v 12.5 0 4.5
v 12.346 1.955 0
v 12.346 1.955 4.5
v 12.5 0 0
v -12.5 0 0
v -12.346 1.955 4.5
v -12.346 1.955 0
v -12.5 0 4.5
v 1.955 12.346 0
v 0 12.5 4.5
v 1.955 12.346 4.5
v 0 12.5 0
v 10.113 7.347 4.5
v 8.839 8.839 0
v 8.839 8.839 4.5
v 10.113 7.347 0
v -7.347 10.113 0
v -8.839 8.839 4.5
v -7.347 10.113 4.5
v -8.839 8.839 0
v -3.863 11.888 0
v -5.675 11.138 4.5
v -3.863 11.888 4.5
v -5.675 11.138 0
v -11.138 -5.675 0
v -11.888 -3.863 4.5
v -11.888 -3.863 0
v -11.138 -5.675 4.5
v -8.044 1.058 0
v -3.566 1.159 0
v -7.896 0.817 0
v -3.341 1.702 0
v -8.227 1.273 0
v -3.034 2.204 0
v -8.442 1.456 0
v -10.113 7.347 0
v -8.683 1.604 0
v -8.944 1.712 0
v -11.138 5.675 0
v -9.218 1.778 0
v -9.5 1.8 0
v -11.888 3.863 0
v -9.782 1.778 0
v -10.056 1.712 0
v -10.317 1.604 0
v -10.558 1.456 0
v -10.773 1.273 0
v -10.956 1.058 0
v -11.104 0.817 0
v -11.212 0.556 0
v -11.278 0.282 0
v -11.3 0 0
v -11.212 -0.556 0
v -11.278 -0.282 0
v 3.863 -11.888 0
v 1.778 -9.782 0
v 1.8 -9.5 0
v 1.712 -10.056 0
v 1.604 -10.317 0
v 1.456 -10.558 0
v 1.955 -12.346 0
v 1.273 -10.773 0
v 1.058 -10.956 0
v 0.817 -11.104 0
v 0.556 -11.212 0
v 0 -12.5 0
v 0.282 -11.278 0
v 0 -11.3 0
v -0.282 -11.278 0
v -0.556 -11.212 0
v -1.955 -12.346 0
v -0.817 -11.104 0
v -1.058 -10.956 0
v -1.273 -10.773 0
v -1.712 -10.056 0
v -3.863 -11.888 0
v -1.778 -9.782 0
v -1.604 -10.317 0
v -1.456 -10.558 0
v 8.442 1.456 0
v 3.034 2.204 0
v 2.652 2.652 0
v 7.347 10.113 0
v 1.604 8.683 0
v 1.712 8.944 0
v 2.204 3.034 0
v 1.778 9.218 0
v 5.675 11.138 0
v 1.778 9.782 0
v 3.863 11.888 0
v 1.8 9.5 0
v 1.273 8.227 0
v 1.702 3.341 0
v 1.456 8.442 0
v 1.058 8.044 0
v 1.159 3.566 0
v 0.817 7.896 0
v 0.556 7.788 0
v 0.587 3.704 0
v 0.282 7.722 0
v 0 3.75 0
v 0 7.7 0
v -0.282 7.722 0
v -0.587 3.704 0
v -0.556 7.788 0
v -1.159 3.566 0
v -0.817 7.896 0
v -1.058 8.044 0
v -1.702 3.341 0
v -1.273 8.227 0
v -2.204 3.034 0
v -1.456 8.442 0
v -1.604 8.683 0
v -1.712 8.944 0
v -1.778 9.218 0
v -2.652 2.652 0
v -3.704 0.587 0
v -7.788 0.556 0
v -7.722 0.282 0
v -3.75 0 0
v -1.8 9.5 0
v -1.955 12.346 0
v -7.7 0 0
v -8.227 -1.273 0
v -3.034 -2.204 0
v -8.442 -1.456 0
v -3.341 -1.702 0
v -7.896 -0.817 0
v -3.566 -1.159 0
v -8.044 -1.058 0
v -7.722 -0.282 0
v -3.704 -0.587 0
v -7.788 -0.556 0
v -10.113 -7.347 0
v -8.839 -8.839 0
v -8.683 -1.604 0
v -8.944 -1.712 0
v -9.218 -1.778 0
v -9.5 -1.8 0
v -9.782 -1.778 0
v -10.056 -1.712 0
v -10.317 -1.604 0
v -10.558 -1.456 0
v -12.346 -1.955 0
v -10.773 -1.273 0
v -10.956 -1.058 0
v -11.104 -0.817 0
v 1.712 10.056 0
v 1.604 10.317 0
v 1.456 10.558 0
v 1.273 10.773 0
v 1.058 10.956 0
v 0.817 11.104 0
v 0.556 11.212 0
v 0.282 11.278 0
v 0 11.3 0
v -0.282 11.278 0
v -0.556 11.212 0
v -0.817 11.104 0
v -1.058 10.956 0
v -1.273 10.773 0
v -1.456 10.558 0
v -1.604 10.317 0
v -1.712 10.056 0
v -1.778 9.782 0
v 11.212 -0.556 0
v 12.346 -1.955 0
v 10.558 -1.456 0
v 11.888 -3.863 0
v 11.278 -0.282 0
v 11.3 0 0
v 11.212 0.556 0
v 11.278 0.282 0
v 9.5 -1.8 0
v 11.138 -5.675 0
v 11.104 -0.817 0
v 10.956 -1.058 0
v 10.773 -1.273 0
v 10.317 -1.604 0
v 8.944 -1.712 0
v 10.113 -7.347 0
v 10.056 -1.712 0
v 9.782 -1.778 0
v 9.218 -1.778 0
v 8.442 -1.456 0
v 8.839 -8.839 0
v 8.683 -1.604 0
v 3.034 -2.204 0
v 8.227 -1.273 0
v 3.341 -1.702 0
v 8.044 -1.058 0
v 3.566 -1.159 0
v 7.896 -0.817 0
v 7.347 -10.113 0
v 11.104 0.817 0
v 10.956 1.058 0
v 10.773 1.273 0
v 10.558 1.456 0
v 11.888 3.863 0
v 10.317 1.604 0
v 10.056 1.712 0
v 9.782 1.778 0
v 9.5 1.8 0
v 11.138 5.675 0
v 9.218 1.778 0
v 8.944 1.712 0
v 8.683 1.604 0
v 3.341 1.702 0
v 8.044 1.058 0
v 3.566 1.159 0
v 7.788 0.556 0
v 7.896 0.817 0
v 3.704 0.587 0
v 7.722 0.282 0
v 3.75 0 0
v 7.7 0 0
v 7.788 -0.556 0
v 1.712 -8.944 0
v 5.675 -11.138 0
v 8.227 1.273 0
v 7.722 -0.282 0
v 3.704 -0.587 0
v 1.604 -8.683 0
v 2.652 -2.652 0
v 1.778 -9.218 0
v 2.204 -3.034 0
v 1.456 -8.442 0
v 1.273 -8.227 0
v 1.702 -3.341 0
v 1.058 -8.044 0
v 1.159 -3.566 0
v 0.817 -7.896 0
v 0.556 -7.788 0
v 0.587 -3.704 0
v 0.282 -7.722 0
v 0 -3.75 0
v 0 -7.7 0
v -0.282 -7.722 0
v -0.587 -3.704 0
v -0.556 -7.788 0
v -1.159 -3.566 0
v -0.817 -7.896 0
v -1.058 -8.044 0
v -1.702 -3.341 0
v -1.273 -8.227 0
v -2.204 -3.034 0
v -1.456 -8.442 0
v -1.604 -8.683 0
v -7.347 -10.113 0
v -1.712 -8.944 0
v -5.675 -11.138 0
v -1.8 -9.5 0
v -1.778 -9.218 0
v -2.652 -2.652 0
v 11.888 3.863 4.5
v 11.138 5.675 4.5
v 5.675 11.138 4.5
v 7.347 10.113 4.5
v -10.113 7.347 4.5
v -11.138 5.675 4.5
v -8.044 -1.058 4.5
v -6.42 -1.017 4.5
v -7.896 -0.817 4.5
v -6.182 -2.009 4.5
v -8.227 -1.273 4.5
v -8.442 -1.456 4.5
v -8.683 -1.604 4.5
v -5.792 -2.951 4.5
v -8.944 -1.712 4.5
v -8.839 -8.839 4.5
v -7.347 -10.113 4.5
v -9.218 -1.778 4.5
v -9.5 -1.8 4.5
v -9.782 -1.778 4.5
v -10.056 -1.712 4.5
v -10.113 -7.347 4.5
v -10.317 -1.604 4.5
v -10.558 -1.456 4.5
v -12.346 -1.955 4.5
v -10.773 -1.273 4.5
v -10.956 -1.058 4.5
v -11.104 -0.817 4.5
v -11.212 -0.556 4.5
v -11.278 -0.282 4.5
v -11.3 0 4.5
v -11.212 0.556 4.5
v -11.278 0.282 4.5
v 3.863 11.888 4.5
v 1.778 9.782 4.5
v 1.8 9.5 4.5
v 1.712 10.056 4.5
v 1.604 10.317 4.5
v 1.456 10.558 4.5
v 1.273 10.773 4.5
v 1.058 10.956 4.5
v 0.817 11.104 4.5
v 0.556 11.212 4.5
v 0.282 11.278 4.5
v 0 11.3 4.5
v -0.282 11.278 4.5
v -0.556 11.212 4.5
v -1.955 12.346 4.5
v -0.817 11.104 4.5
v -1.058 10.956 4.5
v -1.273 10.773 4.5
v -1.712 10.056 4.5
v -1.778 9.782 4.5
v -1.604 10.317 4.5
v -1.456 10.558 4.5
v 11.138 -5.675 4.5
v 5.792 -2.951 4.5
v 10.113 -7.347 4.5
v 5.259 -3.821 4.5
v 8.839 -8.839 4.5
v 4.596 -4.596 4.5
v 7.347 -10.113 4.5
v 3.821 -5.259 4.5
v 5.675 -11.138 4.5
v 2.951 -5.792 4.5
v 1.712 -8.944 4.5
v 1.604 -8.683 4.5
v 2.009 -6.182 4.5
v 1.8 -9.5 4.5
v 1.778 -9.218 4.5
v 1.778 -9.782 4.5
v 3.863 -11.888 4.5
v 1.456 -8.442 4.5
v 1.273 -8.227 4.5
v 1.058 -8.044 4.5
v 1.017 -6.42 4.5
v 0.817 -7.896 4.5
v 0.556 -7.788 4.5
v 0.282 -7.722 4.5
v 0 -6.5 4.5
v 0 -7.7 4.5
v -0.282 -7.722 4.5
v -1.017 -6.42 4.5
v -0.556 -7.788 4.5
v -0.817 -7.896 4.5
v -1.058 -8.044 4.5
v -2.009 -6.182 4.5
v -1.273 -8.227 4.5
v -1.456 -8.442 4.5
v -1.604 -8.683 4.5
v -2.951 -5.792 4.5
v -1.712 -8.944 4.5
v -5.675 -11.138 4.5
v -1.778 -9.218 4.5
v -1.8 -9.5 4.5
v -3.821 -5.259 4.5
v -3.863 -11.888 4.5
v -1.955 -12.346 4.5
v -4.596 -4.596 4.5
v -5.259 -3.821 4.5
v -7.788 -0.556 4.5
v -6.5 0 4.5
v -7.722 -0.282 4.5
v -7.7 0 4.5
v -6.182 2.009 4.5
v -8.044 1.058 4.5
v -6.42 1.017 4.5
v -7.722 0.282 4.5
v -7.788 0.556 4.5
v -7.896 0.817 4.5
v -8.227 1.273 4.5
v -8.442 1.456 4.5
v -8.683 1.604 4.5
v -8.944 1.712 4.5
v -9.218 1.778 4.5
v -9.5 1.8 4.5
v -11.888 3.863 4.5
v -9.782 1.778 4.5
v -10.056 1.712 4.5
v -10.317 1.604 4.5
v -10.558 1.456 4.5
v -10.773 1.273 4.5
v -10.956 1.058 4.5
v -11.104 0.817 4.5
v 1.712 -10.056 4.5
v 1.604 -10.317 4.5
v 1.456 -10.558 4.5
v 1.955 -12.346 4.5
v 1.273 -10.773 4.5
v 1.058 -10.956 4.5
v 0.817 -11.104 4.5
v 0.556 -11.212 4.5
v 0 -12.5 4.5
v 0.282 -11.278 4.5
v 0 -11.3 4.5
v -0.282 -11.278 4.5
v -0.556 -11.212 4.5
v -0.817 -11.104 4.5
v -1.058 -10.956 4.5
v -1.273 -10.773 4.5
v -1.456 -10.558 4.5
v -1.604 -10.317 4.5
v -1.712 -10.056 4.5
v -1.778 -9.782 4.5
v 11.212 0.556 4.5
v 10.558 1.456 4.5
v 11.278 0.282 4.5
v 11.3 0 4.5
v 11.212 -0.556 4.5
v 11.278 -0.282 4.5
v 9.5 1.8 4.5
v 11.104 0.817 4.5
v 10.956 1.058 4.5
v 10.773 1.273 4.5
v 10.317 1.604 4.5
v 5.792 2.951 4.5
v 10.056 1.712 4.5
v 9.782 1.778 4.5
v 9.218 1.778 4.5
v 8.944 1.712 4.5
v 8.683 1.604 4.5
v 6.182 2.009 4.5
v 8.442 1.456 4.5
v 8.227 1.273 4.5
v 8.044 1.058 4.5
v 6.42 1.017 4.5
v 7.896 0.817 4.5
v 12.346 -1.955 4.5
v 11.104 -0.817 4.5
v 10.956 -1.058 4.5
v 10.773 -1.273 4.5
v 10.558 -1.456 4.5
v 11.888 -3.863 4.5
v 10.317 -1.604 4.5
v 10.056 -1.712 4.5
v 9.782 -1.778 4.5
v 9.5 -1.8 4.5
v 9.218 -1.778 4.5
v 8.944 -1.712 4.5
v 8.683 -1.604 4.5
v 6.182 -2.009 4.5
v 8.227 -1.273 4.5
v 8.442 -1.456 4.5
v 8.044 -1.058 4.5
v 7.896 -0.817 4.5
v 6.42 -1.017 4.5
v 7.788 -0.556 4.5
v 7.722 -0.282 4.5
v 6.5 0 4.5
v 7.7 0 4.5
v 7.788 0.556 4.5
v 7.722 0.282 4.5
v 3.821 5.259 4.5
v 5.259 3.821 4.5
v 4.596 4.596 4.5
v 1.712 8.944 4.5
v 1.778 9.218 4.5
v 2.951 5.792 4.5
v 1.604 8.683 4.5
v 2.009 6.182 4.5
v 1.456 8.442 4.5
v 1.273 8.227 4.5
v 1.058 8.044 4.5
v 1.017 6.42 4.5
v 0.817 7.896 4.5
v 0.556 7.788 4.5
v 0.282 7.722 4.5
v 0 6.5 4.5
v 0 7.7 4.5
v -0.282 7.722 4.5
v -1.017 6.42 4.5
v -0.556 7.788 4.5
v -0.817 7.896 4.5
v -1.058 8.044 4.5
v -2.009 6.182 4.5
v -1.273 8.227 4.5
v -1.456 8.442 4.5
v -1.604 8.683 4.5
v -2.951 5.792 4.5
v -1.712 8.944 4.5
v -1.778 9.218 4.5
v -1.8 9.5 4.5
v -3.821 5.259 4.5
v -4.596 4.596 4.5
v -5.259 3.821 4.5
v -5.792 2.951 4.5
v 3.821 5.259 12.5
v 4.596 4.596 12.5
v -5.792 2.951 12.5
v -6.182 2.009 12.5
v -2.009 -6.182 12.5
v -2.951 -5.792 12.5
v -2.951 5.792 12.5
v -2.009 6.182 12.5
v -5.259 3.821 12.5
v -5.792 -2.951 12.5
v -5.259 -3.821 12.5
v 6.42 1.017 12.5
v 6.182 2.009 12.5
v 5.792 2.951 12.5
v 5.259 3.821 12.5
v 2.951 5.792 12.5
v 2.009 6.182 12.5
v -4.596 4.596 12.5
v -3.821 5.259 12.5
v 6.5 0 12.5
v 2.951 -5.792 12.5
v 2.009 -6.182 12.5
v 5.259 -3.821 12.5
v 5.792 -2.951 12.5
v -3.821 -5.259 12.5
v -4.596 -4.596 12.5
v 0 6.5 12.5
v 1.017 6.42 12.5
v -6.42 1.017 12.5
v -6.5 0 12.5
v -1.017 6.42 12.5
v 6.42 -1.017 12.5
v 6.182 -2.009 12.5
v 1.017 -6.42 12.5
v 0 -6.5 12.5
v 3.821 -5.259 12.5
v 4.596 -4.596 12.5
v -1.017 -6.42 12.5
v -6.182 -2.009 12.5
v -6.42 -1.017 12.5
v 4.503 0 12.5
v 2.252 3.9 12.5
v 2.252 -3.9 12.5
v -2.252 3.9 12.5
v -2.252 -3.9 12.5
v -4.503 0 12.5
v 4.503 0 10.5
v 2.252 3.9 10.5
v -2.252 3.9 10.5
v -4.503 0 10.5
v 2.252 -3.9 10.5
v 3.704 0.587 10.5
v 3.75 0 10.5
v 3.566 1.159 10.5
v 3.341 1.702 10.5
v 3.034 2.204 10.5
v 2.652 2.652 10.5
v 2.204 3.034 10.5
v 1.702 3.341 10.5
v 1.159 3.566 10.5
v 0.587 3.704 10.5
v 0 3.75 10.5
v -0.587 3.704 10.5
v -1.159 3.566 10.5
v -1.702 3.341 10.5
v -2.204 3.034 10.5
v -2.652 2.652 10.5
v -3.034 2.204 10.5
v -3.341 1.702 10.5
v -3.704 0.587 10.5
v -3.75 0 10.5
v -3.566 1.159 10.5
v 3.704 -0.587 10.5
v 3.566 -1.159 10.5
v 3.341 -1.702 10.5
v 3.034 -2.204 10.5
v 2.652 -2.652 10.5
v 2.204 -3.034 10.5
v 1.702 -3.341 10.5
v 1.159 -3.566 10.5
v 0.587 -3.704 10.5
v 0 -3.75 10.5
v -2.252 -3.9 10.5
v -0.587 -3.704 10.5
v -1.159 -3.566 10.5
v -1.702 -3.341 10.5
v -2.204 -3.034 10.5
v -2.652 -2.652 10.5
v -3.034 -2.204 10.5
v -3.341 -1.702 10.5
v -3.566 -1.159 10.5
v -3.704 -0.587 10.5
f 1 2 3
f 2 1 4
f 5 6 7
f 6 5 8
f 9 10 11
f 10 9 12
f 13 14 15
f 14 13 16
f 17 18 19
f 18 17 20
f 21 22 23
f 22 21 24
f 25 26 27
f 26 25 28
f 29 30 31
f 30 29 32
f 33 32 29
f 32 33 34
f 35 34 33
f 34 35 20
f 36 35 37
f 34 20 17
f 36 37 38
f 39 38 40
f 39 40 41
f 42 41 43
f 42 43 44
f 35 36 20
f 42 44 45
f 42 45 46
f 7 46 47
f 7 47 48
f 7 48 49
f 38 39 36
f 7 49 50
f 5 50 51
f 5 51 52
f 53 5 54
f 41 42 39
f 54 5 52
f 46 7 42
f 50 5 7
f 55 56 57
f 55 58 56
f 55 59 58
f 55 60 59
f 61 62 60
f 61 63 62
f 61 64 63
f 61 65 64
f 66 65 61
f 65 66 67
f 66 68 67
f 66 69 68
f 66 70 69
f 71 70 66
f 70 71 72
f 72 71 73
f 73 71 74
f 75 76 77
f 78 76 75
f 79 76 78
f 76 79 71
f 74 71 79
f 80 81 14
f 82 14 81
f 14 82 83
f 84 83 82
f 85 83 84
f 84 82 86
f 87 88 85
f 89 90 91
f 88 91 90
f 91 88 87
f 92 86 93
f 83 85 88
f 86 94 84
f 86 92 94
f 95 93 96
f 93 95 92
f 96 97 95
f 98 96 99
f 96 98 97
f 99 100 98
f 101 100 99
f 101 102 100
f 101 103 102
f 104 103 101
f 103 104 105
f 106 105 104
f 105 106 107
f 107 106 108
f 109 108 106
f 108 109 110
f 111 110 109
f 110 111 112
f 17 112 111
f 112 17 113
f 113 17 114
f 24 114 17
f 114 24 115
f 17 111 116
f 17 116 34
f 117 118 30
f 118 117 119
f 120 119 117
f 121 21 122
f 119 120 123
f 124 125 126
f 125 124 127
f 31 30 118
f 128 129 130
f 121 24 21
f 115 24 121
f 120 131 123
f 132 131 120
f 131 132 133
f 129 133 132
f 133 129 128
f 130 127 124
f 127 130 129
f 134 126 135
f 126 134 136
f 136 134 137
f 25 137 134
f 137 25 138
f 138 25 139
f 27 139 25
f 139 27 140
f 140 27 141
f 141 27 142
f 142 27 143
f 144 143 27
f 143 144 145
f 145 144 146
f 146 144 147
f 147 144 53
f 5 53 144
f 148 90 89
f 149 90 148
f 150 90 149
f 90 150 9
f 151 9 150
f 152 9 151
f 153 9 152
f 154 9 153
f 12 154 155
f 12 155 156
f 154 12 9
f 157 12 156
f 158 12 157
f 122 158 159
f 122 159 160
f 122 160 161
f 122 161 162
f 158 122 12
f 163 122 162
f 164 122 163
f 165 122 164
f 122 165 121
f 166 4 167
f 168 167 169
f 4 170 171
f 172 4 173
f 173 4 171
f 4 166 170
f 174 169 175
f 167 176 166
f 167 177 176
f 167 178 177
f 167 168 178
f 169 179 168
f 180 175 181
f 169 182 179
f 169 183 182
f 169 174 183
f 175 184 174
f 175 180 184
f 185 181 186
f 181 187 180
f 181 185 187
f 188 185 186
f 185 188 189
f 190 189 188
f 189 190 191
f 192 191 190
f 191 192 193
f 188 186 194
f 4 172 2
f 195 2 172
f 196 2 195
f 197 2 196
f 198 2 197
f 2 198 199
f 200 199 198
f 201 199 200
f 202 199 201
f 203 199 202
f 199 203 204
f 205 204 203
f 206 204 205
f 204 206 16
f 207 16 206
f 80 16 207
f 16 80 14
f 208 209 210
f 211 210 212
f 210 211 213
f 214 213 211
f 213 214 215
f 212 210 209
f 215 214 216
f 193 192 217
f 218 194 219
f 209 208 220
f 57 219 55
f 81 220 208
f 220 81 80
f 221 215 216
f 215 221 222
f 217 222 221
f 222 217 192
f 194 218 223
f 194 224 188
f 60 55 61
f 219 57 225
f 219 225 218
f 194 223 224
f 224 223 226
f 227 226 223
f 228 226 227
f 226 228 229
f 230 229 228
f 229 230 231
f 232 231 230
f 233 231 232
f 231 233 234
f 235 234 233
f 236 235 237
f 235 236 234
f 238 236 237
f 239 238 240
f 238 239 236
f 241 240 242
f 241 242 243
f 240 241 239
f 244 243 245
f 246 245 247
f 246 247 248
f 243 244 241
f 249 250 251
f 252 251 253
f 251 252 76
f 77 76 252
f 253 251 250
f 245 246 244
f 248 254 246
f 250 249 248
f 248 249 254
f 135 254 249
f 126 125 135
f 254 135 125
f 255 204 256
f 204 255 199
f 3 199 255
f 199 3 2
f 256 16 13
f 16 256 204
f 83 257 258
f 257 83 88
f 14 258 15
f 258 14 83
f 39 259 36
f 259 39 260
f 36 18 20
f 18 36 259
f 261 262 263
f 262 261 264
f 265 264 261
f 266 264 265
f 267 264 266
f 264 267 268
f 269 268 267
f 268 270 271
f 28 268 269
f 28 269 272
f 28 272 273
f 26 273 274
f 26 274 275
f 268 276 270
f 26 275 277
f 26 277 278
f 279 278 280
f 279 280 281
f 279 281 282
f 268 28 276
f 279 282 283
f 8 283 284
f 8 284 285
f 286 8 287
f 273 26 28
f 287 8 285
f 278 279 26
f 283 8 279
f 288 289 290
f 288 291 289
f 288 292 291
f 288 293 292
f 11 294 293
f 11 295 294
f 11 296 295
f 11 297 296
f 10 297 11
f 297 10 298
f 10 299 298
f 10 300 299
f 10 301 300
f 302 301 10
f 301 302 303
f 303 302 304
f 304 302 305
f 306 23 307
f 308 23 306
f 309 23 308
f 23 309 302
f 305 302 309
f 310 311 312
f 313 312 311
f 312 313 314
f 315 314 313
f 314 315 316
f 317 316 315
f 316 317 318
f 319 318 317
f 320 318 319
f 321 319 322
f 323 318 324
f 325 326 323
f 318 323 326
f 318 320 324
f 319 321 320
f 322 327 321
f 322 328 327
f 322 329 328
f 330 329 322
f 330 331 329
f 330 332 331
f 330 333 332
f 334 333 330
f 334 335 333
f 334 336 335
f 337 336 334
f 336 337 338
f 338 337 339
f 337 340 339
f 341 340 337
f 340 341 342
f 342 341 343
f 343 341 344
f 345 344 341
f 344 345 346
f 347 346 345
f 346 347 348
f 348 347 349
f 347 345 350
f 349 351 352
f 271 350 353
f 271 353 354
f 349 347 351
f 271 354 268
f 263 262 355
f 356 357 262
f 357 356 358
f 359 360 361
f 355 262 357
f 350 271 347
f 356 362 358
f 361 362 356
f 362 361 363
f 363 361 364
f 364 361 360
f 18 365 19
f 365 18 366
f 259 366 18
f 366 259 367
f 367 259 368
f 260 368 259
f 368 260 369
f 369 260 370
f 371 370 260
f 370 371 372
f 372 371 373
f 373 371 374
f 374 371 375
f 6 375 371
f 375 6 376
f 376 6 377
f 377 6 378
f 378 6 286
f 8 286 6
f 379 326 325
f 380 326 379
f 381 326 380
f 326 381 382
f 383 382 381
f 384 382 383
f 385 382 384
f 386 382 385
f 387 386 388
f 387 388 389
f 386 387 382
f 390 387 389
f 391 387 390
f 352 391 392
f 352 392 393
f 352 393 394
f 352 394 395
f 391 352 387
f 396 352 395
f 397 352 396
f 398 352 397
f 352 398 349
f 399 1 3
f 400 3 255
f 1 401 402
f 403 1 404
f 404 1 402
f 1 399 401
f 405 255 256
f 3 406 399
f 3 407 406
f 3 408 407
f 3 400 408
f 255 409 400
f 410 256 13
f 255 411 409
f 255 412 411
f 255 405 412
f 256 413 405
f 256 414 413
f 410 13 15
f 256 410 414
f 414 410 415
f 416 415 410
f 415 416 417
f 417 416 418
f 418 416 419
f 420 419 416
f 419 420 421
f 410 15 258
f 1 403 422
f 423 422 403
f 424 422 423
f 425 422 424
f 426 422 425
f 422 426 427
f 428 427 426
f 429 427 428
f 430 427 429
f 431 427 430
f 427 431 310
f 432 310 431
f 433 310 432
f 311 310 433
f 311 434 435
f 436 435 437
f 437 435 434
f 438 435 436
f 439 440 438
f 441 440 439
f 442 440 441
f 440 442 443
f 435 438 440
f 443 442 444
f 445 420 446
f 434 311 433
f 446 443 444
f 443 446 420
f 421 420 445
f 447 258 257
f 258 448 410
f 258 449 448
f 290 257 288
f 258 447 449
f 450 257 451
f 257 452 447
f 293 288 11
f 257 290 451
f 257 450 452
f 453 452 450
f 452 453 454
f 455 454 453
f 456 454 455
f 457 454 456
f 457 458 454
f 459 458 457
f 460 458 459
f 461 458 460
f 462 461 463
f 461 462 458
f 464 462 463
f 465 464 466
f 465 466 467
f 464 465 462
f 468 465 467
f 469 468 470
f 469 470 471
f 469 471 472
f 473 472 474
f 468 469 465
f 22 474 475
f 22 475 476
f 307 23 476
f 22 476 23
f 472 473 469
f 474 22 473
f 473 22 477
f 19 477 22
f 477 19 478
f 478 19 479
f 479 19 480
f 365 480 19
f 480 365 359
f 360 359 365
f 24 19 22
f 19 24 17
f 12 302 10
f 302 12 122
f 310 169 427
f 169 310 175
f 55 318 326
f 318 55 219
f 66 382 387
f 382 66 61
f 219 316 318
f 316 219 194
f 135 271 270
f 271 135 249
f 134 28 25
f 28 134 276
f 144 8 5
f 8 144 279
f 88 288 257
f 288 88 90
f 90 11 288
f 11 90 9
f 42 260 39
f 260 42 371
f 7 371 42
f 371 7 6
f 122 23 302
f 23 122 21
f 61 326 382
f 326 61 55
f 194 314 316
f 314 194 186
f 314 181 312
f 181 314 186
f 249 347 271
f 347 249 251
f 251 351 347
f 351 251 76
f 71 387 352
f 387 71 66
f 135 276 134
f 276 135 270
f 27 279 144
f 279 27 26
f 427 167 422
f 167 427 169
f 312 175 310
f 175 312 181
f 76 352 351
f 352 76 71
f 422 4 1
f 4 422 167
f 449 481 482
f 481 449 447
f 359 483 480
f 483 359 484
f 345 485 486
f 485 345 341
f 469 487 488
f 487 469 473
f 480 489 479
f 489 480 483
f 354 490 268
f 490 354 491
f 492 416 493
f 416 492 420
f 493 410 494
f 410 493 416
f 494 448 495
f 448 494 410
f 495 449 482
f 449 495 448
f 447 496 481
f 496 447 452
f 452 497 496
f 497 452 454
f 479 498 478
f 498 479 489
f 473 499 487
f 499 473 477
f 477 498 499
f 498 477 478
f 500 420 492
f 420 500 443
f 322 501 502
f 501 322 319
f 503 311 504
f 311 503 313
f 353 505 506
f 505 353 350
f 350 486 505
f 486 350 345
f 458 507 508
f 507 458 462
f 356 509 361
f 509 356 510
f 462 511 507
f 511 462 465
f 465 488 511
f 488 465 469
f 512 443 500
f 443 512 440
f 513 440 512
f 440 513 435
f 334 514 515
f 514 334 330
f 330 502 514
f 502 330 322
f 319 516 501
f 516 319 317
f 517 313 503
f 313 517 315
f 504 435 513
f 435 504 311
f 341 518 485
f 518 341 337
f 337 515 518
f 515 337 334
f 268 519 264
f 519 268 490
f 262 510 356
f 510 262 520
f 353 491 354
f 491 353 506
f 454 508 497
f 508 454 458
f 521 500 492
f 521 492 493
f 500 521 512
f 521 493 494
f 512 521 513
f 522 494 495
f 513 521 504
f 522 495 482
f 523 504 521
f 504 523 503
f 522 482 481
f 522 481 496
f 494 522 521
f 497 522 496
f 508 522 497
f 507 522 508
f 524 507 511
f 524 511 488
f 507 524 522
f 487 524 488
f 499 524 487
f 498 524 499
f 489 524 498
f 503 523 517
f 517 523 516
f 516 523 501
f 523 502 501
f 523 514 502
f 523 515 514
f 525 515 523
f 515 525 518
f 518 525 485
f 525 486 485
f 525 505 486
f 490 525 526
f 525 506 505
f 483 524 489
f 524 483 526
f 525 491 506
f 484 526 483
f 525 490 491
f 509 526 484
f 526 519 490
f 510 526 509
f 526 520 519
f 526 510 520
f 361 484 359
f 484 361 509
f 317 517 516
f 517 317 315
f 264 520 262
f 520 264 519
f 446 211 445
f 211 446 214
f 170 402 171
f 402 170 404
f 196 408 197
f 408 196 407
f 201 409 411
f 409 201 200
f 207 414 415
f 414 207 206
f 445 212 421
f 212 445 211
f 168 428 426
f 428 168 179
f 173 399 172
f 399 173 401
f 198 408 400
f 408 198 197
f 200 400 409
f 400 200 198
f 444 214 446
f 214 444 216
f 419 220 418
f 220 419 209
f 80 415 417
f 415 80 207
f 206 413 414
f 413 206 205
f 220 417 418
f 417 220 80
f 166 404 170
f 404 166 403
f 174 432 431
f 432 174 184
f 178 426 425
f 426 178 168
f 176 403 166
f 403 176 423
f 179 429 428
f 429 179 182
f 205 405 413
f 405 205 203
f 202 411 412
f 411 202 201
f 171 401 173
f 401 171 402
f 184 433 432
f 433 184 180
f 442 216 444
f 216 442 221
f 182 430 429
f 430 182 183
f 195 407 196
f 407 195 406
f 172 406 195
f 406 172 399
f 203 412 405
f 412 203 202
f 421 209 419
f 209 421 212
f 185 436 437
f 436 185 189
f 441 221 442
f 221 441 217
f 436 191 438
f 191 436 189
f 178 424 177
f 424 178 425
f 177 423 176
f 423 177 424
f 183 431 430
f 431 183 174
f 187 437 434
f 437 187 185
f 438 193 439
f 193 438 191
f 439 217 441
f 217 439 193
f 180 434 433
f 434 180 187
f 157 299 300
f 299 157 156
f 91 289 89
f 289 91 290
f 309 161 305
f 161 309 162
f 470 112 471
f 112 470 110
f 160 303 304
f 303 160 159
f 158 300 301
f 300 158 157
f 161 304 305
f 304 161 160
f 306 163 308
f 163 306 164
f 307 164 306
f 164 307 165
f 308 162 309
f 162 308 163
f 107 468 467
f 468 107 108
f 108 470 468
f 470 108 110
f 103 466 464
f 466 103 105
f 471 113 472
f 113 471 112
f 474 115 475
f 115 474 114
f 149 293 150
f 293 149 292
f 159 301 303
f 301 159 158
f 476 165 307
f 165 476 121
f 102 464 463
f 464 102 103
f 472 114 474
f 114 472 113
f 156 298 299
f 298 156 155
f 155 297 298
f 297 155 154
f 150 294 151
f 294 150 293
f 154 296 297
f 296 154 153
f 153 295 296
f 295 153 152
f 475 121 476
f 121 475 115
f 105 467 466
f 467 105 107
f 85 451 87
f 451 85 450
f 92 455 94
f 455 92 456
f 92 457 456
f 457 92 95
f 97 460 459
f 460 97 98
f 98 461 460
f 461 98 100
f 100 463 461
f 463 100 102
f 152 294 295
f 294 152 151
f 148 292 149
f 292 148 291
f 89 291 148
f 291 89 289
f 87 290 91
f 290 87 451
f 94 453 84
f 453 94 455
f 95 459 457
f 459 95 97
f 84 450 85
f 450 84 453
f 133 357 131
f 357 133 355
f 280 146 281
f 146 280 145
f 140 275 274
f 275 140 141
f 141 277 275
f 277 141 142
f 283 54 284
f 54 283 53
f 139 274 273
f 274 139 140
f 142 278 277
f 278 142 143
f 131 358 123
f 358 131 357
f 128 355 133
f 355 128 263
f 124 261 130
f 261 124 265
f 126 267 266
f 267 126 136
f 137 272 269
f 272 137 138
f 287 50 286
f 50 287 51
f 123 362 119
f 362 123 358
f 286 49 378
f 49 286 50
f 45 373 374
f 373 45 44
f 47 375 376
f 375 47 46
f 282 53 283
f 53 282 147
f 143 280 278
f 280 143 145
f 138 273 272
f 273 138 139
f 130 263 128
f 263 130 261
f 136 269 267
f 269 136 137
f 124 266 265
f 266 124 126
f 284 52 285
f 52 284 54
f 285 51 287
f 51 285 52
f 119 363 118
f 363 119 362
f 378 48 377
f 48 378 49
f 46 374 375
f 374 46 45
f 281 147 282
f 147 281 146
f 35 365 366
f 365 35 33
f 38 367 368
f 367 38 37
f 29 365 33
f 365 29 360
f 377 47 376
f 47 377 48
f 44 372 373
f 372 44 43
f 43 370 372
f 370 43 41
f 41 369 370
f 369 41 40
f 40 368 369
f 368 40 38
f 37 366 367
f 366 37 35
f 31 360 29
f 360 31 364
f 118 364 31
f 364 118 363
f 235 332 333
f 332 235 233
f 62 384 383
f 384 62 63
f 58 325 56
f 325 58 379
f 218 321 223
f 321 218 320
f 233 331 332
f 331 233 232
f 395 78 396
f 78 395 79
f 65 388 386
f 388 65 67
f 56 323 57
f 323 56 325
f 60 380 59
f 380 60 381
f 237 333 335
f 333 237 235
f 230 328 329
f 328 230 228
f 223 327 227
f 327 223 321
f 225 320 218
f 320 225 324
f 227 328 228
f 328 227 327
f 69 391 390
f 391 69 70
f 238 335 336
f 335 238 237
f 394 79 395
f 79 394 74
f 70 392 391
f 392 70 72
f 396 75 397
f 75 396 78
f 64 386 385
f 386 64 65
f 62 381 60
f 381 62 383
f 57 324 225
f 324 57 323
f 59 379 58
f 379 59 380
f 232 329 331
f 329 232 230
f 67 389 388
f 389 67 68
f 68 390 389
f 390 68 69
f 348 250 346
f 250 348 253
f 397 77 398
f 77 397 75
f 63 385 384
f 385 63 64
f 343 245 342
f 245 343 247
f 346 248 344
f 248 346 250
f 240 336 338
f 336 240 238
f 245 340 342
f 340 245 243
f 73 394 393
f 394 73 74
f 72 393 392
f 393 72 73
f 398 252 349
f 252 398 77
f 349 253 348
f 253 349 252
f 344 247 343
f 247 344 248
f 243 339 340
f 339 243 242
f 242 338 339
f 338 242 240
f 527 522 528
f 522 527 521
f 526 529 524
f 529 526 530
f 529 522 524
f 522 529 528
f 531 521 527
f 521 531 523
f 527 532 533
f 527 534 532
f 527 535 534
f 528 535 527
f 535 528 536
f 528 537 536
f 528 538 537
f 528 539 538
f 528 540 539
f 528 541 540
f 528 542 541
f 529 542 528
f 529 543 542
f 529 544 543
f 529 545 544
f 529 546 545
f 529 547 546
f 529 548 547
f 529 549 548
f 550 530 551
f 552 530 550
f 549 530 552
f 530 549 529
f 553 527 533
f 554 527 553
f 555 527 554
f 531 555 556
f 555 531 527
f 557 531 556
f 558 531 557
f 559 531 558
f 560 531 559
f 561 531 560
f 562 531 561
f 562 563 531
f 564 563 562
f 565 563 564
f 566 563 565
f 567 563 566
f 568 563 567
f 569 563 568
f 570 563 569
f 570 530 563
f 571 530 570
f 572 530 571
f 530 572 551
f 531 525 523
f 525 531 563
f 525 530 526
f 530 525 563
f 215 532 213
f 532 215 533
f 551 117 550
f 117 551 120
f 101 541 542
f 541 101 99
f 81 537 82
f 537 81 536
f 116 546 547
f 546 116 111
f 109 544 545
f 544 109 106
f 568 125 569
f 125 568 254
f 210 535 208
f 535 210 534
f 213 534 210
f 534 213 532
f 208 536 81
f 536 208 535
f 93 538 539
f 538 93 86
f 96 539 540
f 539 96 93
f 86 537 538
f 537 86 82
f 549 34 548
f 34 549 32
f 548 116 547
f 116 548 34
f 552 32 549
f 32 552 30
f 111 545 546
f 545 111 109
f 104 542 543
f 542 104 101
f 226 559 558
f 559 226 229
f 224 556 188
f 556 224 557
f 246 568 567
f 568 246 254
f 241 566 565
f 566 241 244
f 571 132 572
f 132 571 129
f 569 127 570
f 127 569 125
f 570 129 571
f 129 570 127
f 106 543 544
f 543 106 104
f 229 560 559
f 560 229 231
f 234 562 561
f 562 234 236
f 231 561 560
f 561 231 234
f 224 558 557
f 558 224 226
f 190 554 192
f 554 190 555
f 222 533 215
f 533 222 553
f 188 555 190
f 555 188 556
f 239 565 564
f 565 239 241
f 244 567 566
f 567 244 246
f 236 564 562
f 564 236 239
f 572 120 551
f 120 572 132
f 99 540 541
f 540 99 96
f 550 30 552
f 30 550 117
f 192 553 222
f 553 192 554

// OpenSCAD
base_thickness=4.5;
/* x-end.scad line 20 */
base_diameter=25;
/* x-end.scad line 20 */
shaft_thickness=8;
/* x-end.scad line 65 */
shaft_diameter=14-1;
nut_thickness=2;
nut_key_width=7.9-.1;
bore_diameter=4+3.5;
/* x-end.scad line 69-70 */
mounting_holes_diameter=3.6;
/* x-end.scad line 69-70 */
mounting_holes_center_distance=19;

difference() {
  union() {
    cylinder(d=base_diameter, h=base_thickness, $fn=40);
    cylinder(d=shaft_diameter, h=shaft_thickness+base_thickness, $fn=40);
  }
  translate([0,0,base_thickness+shaft_thickness-nut_thickness])
    cylinder(d=nut_key_width*2/sqrt(3), h=nut_thickness, $fn=6);

  cylinder(d=bore_diameter, h=base_thickness+shaft_thickness, $fn=40);

  for(i=[0:3]) {
    rotate([0,0,i*90])
      translate([mounting_holes_center_distance/2,0,0])
        cylinder(d=mounting_holes_diameter, h=base_thickness, $fn=40);
  }
}
